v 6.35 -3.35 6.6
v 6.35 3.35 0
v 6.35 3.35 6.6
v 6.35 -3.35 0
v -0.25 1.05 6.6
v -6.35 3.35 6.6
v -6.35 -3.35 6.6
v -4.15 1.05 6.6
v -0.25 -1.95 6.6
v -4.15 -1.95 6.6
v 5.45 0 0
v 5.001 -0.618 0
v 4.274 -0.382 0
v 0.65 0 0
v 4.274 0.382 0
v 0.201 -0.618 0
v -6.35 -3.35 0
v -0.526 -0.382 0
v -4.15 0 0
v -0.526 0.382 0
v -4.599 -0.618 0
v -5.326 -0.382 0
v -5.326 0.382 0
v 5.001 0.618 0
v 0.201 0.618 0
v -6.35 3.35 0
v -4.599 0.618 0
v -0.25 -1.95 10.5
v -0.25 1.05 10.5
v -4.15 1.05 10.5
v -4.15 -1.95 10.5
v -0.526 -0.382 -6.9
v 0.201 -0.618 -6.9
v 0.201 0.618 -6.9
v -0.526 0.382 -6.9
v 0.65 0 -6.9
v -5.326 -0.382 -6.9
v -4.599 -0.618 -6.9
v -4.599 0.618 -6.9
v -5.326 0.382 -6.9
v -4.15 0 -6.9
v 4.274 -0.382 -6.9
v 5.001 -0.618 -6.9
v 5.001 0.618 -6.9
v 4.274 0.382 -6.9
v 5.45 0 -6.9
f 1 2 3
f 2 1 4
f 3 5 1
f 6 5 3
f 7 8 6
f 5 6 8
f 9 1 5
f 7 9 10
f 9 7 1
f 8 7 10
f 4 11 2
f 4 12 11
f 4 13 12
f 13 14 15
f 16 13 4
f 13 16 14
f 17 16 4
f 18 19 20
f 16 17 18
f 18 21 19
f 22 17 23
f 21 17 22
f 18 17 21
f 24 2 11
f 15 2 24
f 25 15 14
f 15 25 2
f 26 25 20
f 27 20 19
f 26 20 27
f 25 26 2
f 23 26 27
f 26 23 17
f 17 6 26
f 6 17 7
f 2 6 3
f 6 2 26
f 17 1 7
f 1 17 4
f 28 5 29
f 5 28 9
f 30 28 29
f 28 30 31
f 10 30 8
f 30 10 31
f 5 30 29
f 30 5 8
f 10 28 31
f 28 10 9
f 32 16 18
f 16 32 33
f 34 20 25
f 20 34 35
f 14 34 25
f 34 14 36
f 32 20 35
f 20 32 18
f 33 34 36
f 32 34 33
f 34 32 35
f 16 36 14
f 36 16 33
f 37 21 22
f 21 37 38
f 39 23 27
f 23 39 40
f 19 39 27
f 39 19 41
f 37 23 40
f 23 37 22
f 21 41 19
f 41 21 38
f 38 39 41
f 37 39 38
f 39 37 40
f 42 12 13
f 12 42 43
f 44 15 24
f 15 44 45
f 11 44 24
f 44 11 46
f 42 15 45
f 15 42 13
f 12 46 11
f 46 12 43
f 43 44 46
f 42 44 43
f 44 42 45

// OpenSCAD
// switch draw from center pin

module pin() {
  translate( [0, 0, -6.9])
    cylinder( h=6.9, d=1.3);
}

module switch() {

  translate( [-12.7/2, -6.7/2, 0]) {
    cube( [12.7,6.7,6.6]);
    translate( [12.7/2-2.2-3.9/2, (6.7-3.9)/2, 6.6])
      cube([3.9, 3, 3.9]);
  }
  pin();
  translate( [-4.8, 0, 0]) pin();
  translate( [4.8, 0, 0]) pin();
}

switch();
